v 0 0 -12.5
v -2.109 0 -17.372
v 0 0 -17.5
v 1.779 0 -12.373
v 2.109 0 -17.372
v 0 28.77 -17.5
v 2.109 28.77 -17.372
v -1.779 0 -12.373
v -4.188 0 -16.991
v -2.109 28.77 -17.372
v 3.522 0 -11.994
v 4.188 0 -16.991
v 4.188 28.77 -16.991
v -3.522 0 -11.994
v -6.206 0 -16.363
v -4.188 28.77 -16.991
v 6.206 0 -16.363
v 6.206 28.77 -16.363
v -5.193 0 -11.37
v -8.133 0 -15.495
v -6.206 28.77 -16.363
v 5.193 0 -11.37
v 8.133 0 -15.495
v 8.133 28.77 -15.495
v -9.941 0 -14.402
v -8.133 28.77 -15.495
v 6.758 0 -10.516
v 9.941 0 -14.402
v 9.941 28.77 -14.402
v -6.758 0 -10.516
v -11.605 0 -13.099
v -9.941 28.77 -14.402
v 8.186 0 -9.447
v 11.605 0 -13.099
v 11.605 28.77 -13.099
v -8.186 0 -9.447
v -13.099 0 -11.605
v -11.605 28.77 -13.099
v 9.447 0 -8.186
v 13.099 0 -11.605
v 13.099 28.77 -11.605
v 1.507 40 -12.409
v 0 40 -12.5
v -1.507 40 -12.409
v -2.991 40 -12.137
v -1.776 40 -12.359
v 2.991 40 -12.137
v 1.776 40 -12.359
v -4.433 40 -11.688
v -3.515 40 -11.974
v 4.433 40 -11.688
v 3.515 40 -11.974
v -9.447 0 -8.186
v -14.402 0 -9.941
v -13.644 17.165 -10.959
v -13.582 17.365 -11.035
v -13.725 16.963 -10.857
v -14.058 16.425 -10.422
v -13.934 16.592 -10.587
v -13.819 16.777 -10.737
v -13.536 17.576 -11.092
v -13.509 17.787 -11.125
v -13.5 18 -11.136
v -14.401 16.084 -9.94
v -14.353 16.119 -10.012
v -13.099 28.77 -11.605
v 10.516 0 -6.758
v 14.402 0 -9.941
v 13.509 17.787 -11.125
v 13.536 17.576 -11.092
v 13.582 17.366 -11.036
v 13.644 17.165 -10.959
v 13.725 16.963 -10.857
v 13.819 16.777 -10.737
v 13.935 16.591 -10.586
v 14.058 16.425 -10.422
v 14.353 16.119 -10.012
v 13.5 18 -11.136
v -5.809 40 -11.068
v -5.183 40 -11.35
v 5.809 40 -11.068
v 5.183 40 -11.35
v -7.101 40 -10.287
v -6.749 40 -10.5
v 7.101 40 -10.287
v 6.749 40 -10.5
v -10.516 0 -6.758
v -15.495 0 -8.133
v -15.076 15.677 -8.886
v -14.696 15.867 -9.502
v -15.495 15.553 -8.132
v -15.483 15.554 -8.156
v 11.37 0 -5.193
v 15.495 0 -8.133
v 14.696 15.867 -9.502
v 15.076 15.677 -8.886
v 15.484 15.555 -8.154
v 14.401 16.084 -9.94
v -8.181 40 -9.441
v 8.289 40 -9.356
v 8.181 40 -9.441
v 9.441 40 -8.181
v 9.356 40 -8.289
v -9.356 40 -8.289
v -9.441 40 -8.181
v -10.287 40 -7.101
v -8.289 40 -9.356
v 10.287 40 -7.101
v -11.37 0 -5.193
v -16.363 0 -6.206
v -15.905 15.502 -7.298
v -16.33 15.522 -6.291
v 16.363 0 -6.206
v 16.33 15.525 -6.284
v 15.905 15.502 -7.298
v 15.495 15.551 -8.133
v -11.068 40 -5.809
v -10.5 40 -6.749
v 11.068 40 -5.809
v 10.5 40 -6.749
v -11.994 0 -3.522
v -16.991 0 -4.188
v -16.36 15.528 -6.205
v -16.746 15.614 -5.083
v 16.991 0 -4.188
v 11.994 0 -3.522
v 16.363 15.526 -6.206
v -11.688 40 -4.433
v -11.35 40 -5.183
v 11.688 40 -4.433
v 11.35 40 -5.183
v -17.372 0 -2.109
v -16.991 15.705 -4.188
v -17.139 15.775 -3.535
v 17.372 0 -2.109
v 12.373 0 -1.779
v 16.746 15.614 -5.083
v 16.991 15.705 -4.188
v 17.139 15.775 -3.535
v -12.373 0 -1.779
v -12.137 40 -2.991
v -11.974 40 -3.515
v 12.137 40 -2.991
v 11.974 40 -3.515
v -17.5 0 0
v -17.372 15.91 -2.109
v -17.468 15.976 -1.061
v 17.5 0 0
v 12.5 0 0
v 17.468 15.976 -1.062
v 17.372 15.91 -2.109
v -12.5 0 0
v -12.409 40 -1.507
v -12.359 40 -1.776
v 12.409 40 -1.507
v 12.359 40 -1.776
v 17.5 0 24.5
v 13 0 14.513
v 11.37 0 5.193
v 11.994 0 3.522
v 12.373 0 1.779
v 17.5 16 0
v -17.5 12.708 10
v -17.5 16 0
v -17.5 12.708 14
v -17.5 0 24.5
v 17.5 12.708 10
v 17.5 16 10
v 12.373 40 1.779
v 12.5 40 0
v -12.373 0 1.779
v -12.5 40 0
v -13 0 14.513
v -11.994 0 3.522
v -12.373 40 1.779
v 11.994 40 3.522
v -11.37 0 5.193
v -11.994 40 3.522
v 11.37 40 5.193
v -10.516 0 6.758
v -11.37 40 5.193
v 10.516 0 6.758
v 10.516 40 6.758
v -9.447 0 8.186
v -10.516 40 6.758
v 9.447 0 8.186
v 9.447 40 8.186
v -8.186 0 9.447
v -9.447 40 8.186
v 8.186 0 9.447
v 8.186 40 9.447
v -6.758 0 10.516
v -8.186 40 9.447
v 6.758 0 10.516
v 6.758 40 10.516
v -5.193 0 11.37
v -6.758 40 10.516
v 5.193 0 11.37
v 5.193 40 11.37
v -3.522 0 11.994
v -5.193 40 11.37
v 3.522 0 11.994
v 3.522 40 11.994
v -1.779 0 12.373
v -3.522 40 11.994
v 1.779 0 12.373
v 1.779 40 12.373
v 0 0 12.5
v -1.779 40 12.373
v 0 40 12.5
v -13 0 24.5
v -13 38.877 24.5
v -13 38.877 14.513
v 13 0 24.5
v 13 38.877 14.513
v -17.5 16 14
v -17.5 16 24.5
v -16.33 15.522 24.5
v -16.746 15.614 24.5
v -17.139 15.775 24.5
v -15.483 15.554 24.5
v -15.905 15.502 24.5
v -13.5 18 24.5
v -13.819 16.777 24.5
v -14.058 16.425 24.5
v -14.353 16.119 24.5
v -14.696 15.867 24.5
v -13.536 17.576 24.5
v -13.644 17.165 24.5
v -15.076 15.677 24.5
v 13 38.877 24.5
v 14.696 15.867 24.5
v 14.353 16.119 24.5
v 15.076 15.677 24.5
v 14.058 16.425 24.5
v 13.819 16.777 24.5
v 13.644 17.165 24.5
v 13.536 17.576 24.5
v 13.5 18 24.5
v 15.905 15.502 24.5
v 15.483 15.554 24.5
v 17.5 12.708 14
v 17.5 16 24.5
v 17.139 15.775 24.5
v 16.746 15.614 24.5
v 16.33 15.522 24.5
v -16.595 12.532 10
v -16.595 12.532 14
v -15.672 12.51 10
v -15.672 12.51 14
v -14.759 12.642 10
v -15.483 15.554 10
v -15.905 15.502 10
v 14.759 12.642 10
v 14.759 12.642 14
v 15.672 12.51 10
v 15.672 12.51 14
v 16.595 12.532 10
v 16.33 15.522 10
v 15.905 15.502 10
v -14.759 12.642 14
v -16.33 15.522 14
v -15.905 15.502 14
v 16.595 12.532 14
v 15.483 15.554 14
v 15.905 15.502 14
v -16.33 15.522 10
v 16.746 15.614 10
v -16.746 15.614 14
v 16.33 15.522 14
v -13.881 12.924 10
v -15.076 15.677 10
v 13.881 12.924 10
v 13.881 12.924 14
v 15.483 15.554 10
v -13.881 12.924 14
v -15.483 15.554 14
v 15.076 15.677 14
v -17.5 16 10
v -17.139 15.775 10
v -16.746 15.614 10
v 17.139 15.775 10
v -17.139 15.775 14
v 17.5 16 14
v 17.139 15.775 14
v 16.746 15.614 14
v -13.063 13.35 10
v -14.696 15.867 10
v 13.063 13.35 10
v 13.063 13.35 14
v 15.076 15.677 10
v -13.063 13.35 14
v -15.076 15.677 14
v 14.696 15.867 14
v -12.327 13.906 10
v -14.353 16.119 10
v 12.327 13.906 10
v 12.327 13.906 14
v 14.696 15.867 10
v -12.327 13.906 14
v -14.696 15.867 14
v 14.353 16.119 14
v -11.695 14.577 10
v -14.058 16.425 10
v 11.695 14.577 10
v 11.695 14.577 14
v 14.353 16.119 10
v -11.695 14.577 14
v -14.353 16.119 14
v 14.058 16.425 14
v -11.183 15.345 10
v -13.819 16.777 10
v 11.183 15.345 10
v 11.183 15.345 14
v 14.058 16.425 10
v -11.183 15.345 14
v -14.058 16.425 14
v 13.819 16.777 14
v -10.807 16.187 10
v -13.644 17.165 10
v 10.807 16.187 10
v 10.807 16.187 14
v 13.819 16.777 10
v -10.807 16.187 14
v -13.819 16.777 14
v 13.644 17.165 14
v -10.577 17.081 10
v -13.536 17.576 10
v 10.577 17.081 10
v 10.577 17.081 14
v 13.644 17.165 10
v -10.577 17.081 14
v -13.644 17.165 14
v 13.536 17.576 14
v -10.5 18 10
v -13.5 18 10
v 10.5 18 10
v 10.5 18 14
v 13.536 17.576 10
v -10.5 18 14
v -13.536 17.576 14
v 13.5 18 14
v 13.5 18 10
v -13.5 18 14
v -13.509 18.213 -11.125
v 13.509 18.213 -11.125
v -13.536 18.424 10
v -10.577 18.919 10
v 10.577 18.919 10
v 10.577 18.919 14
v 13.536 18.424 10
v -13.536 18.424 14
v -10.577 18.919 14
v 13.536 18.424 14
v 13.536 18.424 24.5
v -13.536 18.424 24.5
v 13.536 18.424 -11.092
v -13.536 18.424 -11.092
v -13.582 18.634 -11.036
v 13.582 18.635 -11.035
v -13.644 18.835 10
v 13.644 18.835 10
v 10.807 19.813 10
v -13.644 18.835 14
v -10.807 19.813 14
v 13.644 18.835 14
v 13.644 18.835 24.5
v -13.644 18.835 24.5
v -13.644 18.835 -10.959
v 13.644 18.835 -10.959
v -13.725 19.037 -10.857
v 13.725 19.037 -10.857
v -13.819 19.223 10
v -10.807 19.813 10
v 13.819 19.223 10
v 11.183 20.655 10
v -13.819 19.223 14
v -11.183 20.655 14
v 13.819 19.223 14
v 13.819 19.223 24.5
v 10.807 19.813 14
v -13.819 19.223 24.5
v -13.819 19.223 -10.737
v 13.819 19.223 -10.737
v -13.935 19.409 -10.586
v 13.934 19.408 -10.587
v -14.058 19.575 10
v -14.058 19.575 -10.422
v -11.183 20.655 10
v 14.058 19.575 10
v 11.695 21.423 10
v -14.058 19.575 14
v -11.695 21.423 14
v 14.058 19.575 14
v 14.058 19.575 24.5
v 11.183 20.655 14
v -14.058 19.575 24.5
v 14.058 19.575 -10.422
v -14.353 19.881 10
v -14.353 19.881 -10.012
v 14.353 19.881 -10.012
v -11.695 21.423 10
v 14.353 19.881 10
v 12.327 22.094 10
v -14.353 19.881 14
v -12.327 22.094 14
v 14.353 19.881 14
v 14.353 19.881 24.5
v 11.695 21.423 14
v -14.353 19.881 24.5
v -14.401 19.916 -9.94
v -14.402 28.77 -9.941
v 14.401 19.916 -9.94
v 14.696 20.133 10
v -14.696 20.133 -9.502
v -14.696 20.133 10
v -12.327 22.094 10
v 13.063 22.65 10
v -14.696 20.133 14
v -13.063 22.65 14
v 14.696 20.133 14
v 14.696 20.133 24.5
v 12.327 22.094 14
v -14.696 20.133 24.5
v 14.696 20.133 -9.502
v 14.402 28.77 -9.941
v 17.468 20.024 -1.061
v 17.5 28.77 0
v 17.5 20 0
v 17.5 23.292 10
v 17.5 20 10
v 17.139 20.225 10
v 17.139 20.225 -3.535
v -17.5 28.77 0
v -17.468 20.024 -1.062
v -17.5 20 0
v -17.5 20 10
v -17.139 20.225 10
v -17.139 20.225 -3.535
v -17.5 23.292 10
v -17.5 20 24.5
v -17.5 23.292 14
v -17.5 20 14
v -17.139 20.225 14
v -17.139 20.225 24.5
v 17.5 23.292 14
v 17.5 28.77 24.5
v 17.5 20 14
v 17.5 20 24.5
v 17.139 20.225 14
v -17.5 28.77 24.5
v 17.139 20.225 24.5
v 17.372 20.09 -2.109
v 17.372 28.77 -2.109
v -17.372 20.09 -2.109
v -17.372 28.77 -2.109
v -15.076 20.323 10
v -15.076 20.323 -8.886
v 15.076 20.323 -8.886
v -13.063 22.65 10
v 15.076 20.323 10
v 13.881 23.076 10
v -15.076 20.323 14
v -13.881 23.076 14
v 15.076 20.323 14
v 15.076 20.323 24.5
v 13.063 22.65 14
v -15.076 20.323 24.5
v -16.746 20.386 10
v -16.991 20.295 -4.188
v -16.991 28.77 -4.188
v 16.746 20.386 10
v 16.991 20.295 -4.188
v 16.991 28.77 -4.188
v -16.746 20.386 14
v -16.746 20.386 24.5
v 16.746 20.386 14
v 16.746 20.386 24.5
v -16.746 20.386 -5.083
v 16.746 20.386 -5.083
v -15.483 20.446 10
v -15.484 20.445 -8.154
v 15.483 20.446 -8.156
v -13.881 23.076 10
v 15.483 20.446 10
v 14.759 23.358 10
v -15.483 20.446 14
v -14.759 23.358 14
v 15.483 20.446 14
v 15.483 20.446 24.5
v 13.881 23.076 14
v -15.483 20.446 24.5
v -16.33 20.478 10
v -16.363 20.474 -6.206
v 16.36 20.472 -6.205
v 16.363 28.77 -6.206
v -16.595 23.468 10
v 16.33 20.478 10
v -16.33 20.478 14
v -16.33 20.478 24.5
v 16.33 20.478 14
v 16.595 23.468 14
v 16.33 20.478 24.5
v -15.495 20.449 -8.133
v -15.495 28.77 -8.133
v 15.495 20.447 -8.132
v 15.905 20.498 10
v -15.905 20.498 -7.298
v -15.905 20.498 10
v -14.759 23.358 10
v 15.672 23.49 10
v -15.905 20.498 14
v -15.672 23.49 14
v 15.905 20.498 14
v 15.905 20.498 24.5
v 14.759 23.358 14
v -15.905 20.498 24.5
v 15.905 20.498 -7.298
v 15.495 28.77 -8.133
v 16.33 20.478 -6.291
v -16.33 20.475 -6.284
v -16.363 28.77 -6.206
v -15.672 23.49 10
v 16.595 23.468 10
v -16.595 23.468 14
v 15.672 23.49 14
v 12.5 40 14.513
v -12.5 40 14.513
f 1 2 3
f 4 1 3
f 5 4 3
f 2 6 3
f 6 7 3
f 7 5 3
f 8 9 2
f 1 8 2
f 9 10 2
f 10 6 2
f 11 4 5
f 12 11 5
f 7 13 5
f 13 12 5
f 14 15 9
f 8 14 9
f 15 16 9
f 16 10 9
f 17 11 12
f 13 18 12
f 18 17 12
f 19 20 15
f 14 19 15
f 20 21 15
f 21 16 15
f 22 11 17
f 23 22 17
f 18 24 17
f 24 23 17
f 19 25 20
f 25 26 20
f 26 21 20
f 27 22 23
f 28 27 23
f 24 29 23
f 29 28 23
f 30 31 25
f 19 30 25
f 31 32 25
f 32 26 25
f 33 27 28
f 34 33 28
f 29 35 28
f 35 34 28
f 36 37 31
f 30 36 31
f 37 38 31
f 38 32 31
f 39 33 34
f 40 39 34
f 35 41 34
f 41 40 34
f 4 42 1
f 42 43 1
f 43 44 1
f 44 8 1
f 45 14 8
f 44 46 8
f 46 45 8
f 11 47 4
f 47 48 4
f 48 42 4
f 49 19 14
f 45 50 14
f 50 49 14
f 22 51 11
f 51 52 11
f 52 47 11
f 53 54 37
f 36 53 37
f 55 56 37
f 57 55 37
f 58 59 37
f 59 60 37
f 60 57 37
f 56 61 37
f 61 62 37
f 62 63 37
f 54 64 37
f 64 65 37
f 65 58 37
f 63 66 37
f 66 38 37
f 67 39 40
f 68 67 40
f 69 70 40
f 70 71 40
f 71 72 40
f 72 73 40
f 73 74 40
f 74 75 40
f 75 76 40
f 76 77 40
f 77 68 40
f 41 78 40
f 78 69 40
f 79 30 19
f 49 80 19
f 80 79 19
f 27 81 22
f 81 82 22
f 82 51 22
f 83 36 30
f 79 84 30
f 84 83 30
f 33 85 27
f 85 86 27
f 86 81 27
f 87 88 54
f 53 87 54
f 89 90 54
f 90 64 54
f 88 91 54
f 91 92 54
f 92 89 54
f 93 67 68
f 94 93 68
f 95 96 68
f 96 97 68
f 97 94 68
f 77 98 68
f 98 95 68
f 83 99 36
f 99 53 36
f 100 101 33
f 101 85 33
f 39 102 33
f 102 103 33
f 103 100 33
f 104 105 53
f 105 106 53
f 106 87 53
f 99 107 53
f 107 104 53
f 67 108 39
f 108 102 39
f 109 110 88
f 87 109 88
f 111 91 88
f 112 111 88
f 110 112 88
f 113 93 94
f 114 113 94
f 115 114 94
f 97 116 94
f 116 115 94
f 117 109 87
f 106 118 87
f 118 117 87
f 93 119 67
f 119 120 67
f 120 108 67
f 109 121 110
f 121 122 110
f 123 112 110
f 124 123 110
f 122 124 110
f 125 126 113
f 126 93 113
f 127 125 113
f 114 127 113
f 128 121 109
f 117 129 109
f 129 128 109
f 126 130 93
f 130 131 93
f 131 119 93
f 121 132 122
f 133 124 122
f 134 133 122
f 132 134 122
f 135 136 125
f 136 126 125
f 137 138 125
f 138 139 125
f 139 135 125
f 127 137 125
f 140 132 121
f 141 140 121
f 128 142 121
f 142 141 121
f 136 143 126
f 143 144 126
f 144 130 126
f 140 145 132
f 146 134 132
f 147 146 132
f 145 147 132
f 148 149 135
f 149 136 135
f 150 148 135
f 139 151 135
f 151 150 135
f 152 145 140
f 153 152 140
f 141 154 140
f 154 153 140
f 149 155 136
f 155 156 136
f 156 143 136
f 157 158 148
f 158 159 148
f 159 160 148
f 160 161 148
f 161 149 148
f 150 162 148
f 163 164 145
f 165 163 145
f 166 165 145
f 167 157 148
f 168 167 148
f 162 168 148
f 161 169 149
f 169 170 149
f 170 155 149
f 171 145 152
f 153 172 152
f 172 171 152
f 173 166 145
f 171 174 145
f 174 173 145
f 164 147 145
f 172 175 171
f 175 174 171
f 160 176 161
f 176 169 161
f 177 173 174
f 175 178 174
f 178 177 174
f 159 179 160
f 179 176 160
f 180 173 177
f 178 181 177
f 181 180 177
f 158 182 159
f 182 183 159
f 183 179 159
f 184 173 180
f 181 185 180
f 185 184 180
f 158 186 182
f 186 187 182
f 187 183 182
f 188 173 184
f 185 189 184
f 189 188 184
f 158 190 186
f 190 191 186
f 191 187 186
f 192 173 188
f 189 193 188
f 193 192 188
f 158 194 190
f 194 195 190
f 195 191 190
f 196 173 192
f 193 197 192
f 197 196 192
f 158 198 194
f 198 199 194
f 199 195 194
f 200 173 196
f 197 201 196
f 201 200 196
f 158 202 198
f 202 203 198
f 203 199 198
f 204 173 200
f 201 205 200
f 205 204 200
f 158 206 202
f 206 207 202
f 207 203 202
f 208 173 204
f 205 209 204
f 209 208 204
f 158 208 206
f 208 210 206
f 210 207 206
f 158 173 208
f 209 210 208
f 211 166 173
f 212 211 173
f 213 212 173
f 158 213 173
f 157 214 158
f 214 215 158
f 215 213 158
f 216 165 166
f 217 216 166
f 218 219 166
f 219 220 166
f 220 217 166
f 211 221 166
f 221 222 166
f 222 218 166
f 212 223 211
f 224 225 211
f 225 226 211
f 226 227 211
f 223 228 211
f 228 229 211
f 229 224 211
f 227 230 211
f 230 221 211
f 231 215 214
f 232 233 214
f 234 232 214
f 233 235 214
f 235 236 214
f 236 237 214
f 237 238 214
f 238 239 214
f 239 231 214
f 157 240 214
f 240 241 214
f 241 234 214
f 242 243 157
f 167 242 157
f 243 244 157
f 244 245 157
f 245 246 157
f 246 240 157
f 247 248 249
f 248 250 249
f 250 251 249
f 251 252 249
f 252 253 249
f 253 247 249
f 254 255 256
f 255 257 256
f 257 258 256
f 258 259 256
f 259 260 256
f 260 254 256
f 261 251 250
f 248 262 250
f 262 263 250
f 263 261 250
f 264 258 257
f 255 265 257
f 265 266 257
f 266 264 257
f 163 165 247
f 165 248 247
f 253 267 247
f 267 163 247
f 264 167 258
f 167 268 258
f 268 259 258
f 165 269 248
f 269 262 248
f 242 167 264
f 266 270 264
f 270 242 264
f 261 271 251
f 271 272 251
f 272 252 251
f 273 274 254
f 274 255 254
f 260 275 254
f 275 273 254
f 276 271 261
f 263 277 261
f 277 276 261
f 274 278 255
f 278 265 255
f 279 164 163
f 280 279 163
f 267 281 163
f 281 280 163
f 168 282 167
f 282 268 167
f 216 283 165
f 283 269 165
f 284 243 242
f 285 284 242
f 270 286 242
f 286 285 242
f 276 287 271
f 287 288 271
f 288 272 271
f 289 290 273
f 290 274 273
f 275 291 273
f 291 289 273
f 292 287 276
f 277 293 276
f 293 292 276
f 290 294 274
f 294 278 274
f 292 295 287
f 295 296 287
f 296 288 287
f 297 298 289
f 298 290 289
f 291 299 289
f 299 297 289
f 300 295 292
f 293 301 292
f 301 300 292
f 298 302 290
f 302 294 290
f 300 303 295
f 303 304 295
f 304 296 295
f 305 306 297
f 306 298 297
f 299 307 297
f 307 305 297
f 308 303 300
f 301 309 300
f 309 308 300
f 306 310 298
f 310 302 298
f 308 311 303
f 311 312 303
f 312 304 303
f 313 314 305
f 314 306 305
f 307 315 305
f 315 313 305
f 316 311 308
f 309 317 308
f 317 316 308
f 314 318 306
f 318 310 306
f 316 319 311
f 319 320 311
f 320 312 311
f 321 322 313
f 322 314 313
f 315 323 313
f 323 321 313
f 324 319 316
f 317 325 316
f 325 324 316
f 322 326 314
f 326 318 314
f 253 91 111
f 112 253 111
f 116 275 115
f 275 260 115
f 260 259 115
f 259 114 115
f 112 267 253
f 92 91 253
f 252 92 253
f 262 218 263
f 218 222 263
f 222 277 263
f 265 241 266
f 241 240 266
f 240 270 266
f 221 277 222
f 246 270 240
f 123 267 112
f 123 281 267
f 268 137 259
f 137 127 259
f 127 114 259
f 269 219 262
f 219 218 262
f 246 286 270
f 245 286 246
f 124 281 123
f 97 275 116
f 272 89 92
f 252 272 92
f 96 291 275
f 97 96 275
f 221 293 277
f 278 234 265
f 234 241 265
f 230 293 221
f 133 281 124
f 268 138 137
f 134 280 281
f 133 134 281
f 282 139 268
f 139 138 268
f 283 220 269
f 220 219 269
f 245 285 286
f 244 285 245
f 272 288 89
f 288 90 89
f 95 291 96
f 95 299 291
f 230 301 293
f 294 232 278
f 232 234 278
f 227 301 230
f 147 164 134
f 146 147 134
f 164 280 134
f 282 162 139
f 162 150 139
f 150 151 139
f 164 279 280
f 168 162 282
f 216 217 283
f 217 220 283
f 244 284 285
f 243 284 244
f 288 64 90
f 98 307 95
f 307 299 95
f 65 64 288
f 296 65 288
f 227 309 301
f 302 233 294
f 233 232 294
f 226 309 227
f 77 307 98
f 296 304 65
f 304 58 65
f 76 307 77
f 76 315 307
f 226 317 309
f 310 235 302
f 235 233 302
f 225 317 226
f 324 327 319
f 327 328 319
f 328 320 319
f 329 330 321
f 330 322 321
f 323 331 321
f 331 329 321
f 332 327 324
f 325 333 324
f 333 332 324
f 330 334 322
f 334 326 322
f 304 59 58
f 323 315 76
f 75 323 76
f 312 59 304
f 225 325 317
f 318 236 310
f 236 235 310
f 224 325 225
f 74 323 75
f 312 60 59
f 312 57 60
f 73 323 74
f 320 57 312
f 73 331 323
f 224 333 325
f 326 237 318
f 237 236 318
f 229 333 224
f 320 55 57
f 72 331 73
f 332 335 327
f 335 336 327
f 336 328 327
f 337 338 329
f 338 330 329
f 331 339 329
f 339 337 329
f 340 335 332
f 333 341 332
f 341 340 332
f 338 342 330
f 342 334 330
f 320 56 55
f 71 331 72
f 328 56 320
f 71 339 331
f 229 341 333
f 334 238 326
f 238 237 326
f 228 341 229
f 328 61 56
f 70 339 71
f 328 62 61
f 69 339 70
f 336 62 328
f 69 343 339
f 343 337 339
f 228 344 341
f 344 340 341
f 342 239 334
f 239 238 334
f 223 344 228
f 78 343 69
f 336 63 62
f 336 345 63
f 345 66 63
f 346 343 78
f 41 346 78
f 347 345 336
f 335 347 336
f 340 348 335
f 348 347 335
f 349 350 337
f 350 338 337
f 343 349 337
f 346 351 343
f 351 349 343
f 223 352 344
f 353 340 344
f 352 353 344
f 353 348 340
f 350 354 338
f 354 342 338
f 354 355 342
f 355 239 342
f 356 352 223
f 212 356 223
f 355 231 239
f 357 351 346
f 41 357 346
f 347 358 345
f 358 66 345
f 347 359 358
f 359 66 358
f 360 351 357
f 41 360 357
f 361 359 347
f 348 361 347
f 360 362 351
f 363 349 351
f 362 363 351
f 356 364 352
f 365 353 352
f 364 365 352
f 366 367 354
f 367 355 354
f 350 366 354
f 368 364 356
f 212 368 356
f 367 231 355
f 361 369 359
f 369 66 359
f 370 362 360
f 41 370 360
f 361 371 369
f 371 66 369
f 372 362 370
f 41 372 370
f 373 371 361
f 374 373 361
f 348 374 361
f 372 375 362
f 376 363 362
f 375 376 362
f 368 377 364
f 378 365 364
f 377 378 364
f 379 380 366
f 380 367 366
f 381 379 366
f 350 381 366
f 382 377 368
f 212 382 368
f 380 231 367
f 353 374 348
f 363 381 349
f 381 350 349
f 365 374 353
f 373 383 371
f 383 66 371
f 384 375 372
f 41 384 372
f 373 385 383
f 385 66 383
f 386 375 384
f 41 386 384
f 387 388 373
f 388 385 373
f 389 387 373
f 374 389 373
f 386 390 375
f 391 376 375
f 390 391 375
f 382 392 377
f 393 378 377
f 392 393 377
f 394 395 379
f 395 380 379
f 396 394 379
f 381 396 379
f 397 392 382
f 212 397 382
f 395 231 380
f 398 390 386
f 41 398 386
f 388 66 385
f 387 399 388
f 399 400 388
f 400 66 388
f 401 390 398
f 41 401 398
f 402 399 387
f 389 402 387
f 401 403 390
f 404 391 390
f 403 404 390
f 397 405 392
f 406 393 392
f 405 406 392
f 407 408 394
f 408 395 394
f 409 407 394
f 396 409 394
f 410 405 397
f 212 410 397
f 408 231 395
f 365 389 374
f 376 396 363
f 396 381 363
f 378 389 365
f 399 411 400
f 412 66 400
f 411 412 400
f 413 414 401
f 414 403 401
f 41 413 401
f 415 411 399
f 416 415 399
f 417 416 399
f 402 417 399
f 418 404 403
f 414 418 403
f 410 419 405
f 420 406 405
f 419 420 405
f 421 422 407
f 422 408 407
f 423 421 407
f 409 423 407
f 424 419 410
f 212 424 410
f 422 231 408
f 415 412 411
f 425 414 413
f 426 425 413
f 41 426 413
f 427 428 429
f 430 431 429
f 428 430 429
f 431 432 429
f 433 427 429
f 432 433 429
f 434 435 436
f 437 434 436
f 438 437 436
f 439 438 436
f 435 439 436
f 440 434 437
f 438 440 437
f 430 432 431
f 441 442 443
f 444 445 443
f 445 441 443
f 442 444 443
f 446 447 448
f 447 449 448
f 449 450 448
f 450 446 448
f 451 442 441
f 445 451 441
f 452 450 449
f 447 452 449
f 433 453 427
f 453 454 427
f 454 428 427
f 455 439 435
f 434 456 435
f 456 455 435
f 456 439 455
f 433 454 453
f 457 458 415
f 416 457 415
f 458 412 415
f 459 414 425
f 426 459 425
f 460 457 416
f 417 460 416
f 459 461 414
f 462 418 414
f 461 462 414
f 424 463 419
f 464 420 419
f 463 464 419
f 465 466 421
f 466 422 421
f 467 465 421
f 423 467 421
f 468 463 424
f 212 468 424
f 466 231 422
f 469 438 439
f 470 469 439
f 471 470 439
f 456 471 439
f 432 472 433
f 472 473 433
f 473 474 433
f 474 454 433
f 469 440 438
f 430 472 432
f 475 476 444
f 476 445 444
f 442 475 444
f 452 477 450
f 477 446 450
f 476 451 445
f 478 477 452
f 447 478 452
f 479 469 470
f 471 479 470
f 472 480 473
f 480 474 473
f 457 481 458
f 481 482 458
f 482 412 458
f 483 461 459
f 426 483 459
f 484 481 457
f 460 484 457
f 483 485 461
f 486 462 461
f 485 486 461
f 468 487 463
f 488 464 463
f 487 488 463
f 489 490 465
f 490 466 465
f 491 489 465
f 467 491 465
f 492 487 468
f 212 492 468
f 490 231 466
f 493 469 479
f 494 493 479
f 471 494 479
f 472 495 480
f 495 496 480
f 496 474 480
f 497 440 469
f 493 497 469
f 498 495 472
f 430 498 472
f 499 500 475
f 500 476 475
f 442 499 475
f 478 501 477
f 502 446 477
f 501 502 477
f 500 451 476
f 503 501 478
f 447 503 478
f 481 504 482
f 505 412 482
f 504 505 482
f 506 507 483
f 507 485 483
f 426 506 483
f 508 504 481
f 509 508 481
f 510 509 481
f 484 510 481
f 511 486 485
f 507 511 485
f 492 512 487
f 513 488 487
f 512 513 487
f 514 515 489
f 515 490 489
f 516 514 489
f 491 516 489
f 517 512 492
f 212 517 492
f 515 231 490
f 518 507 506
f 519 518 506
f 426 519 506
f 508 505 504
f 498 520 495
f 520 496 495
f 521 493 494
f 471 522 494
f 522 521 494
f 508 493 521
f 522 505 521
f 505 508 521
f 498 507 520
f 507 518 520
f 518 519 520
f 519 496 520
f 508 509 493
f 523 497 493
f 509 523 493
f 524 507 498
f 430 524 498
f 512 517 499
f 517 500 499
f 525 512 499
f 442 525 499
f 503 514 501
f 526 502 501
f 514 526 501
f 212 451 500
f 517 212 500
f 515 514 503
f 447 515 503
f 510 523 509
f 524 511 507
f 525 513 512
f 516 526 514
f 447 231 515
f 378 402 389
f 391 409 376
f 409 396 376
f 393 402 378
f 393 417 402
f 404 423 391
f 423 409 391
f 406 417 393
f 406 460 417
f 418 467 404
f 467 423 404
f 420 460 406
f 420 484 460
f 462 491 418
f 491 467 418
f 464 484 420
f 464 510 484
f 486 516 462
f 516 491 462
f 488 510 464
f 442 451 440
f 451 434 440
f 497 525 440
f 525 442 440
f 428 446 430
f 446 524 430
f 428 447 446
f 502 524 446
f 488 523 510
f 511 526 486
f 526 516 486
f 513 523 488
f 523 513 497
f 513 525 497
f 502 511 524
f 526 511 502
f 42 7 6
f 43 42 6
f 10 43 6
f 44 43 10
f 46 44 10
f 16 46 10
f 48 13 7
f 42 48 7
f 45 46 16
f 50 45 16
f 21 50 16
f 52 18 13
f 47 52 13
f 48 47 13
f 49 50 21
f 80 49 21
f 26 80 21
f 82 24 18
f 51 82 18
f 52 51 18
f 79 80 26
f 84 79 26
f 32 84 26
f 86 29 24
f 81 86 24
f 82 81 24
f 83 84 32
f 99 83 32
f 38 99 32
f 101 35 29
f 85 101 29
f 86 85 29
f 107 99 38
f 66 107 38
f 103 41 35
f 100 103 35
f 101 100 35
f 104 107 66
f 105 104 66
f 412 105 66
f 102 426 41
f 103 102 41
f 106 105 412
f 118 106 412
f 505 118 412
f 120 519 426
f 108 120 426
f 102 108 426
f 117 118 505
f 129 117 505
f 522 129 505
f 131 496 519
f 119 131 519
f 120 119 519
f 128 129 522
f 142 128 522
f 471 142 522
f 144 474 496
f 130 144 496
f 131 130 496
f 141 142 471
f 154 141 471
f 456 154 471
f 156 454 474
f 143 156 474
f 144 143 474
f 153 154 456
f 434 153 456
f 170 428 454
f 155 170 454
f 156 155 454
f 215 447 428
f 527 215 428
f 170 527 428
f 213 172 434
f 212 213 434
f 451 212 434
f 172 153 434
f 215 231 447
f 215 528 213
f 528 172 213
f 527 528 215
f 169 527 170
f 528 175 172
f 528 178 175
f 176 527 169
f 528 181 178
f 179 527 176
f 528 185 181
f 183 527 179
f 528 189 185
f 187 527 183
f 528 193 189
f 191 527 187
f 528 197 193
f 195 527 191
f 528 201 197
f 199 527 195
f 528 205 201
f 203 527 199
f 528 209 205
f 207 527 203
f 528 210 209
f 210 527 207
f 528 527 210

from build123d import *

# Parameters (mm, degrees)
CROQUIS1_R              = 17.5
CROQUIS1_R_2            = 12.5
SALIENTE_EXTRUIR1_DEPTH = 40
CROQUIS2_W              = 35
CROQUIS2_H              = 40
SALIENTE_EXTRUIR2_DEPTH = 30
CORTAR_EXTRUIR1_START   = -55
CROQUIS3_R              = 12.5
CORTAR_EXTRUIR1_DEPTH   = 55
CROQUIS4_W              = 26
CROQUIS4_H              = 10
CORTAR_EXTRUIR2_DEPTH   = 55
CROQUIS5_R              = 2.5
CORTAR_EXTRUIR3_DEPTH   = 55
CHAFL_N1_SIZE           = 5
CHAFL_N1_SIZE_2         = 11.23018387
CROQUIS6_W              = 43.374633734
CROQUIS6_H              = 44.438316851
CORTAR_EXTRUIR4_DEPTH   = 5.5
CROQUIS7_R              = 5.5
CORTAR_EXTRUIR5_DEPTH   = 4


with BuildPart() as part:
    # Croquis1 → Saliente-Extruir1 (new body)
    with BuildSketch(Plane(origin=(0, 0, 0), x_dir=(1, 0, 0), z_dir=(0, 1, 0))):
        with Locations(Location((0, 0, 0), (0, 0, 270))):
            Circle(CROQUIS1_R)
        with Locations(Location((0, 0, 0), (0, 0, 270))):
            Circle(CROQUIS1_R_2, mode=Mode.SUBTRACT)
    extrude(amount=SALIENTE_EXTRUIR1_DEPTH)

    # Croquis2 → Saliente-Extruir2 (add)
    with BuildSketch(Plane.XY):
        with Locations((0, 20)):
            Rectangle(CROQUIS2_W, CROQUIS2_H)
    extrude(amount=SALIENTE_EXTRUIR2_DEPTH)

    # Croquis3 → Cortar-Extruir1 (cut)
    with BuildSketch(Plane(origin=(0, 40, 0), x_dir=(1, 0, 0), z_dir=(0, 1, 0)).offset(CORTAR_EXTRUIR1_START)):
        with Locations(Location((0, 0, 0), (0, 0, 270))):
            Circle(CROQUIS3_R)
    extrude(amount=CORTAR_EXTRUIR1_DEPTH, mode=Mode.SUBTRACT)

    # Croquis4 → Cortar-Extruir2 (cut)
    with BuildSketch(Plane(origin=(0, 40, 0), x_dir=(1, 0, 0), z_dir=(0, 1, 0))):
        with Locations((0, -19.512798854)):
            Rectangle(CROQUIS4_W, CROQUIS4_H)
    extrude(amount=-CORTAR_EXTRUIR2_DEPTH, mode=Mode.SUBTRACT)

    # Croquis5 → Cortar-Extruir3 (cut)
    with BuildSketch(Plane.XY.offset(30)):
        with Locations((16, 18)):
            Circle(CROQUIS5_R)
        with Locations((-16, 18)):
            Circle(CROQUIS5_R)
    extrude(amount=-CORTAR_EXTRUIR3_DEPTH, mode=Mode.SUBTRACT)

    # Chaflán1
    # the kernel refuses this chamfer: 11.23018387, 5 mm, written as the material it takes off along each edge
    with BuildSketch(Plane(origin=(17.5, 40, 0), x_dir=(-0.9968798599783936, 0.07893379991777015, 0), z_dir=(0, 0, 1))) as chafl_n1_piece_1:
        Polygon((CHAFL_N1_SIZE * 0.996879859978, CHAFL_N1_SIZE * 0.0789337999178), (-CHAFL_N1_SIZE_2 * 0.0789337999144, CHAFL_N1_SIZE_2 * 0.996879859936), (0, 0), align=None)
    extrude(amount=59.104972531, mode=Mode.SUBTRACT)
    with BuildSketch(Plane(origin=(-17.5, 40, 0), x_dir=(0.9968798599783936, 0.07893379991777015, 0), z_dir=(0, 0, 1))) as chafl_n1_piece_2:
        Polygon((CHAFL_N1_SIZE * 0.996879859978, -CHAFL_N1_SIZE * 0.0789337999178), (-CHAFL_N1_SIZE_2 * 0.0789337999144, -CHAFL_N1_SIZE_2 * 0.996879859936), (0, 0), align=None)
    extrude(amount=59.104972531, mode=Mode.SUBTRACT)
    with BuildSketch(Plane(origin=(0, 40, 0), x_dir=(1, 0, 0), z_dir=(0, 0, 1))) as chafl_n1_piece_3:
        Polygon((17.5 - CHAFL_N1_SIZE, 0), (17.5, -CHAFL_N1_SIZE_2), (17.5, 0), align=None)
    revolve(axis=Axis((0, 40, 0), (0, 1, 0)), revolution_arc=180, mode=Mode.SUBTRACT)

    # Croquis6 → Cortar-Extruir4 (cut)
    with BuildSketch(Plane.XY.offset(30)):
        with Locations((0, 20.325014285)):
            Rectangle(CROQUIS6_W, CROQUIS6_H)
    extrude(amount=-CORTAR_EXTRUIR4_DEPTH, mode=Mode.SUBTRACT)

    # Croquis7 → Cortar-Extruir5 (cut)
    with BuildSketch(Plane.XY.offset(14)):
        with Locations((-16, 18)):
            Circle(CROQUIS7_R)
    cortar_extruir5 = extrude(amount=-CORTAR_EXTRUIR5_DEPTH, mode=Mode.SUBTRACT)

    # Simetría1: Cortar-Extruir5 across plane
    add(cortar_extruir5.mirror(Plane(origin=(0, 0, 0), x_dir=(0, 0, 1), z_dir=(1, 0, 0))), mode=Mode.SUBTRACT)


solid = part.part
